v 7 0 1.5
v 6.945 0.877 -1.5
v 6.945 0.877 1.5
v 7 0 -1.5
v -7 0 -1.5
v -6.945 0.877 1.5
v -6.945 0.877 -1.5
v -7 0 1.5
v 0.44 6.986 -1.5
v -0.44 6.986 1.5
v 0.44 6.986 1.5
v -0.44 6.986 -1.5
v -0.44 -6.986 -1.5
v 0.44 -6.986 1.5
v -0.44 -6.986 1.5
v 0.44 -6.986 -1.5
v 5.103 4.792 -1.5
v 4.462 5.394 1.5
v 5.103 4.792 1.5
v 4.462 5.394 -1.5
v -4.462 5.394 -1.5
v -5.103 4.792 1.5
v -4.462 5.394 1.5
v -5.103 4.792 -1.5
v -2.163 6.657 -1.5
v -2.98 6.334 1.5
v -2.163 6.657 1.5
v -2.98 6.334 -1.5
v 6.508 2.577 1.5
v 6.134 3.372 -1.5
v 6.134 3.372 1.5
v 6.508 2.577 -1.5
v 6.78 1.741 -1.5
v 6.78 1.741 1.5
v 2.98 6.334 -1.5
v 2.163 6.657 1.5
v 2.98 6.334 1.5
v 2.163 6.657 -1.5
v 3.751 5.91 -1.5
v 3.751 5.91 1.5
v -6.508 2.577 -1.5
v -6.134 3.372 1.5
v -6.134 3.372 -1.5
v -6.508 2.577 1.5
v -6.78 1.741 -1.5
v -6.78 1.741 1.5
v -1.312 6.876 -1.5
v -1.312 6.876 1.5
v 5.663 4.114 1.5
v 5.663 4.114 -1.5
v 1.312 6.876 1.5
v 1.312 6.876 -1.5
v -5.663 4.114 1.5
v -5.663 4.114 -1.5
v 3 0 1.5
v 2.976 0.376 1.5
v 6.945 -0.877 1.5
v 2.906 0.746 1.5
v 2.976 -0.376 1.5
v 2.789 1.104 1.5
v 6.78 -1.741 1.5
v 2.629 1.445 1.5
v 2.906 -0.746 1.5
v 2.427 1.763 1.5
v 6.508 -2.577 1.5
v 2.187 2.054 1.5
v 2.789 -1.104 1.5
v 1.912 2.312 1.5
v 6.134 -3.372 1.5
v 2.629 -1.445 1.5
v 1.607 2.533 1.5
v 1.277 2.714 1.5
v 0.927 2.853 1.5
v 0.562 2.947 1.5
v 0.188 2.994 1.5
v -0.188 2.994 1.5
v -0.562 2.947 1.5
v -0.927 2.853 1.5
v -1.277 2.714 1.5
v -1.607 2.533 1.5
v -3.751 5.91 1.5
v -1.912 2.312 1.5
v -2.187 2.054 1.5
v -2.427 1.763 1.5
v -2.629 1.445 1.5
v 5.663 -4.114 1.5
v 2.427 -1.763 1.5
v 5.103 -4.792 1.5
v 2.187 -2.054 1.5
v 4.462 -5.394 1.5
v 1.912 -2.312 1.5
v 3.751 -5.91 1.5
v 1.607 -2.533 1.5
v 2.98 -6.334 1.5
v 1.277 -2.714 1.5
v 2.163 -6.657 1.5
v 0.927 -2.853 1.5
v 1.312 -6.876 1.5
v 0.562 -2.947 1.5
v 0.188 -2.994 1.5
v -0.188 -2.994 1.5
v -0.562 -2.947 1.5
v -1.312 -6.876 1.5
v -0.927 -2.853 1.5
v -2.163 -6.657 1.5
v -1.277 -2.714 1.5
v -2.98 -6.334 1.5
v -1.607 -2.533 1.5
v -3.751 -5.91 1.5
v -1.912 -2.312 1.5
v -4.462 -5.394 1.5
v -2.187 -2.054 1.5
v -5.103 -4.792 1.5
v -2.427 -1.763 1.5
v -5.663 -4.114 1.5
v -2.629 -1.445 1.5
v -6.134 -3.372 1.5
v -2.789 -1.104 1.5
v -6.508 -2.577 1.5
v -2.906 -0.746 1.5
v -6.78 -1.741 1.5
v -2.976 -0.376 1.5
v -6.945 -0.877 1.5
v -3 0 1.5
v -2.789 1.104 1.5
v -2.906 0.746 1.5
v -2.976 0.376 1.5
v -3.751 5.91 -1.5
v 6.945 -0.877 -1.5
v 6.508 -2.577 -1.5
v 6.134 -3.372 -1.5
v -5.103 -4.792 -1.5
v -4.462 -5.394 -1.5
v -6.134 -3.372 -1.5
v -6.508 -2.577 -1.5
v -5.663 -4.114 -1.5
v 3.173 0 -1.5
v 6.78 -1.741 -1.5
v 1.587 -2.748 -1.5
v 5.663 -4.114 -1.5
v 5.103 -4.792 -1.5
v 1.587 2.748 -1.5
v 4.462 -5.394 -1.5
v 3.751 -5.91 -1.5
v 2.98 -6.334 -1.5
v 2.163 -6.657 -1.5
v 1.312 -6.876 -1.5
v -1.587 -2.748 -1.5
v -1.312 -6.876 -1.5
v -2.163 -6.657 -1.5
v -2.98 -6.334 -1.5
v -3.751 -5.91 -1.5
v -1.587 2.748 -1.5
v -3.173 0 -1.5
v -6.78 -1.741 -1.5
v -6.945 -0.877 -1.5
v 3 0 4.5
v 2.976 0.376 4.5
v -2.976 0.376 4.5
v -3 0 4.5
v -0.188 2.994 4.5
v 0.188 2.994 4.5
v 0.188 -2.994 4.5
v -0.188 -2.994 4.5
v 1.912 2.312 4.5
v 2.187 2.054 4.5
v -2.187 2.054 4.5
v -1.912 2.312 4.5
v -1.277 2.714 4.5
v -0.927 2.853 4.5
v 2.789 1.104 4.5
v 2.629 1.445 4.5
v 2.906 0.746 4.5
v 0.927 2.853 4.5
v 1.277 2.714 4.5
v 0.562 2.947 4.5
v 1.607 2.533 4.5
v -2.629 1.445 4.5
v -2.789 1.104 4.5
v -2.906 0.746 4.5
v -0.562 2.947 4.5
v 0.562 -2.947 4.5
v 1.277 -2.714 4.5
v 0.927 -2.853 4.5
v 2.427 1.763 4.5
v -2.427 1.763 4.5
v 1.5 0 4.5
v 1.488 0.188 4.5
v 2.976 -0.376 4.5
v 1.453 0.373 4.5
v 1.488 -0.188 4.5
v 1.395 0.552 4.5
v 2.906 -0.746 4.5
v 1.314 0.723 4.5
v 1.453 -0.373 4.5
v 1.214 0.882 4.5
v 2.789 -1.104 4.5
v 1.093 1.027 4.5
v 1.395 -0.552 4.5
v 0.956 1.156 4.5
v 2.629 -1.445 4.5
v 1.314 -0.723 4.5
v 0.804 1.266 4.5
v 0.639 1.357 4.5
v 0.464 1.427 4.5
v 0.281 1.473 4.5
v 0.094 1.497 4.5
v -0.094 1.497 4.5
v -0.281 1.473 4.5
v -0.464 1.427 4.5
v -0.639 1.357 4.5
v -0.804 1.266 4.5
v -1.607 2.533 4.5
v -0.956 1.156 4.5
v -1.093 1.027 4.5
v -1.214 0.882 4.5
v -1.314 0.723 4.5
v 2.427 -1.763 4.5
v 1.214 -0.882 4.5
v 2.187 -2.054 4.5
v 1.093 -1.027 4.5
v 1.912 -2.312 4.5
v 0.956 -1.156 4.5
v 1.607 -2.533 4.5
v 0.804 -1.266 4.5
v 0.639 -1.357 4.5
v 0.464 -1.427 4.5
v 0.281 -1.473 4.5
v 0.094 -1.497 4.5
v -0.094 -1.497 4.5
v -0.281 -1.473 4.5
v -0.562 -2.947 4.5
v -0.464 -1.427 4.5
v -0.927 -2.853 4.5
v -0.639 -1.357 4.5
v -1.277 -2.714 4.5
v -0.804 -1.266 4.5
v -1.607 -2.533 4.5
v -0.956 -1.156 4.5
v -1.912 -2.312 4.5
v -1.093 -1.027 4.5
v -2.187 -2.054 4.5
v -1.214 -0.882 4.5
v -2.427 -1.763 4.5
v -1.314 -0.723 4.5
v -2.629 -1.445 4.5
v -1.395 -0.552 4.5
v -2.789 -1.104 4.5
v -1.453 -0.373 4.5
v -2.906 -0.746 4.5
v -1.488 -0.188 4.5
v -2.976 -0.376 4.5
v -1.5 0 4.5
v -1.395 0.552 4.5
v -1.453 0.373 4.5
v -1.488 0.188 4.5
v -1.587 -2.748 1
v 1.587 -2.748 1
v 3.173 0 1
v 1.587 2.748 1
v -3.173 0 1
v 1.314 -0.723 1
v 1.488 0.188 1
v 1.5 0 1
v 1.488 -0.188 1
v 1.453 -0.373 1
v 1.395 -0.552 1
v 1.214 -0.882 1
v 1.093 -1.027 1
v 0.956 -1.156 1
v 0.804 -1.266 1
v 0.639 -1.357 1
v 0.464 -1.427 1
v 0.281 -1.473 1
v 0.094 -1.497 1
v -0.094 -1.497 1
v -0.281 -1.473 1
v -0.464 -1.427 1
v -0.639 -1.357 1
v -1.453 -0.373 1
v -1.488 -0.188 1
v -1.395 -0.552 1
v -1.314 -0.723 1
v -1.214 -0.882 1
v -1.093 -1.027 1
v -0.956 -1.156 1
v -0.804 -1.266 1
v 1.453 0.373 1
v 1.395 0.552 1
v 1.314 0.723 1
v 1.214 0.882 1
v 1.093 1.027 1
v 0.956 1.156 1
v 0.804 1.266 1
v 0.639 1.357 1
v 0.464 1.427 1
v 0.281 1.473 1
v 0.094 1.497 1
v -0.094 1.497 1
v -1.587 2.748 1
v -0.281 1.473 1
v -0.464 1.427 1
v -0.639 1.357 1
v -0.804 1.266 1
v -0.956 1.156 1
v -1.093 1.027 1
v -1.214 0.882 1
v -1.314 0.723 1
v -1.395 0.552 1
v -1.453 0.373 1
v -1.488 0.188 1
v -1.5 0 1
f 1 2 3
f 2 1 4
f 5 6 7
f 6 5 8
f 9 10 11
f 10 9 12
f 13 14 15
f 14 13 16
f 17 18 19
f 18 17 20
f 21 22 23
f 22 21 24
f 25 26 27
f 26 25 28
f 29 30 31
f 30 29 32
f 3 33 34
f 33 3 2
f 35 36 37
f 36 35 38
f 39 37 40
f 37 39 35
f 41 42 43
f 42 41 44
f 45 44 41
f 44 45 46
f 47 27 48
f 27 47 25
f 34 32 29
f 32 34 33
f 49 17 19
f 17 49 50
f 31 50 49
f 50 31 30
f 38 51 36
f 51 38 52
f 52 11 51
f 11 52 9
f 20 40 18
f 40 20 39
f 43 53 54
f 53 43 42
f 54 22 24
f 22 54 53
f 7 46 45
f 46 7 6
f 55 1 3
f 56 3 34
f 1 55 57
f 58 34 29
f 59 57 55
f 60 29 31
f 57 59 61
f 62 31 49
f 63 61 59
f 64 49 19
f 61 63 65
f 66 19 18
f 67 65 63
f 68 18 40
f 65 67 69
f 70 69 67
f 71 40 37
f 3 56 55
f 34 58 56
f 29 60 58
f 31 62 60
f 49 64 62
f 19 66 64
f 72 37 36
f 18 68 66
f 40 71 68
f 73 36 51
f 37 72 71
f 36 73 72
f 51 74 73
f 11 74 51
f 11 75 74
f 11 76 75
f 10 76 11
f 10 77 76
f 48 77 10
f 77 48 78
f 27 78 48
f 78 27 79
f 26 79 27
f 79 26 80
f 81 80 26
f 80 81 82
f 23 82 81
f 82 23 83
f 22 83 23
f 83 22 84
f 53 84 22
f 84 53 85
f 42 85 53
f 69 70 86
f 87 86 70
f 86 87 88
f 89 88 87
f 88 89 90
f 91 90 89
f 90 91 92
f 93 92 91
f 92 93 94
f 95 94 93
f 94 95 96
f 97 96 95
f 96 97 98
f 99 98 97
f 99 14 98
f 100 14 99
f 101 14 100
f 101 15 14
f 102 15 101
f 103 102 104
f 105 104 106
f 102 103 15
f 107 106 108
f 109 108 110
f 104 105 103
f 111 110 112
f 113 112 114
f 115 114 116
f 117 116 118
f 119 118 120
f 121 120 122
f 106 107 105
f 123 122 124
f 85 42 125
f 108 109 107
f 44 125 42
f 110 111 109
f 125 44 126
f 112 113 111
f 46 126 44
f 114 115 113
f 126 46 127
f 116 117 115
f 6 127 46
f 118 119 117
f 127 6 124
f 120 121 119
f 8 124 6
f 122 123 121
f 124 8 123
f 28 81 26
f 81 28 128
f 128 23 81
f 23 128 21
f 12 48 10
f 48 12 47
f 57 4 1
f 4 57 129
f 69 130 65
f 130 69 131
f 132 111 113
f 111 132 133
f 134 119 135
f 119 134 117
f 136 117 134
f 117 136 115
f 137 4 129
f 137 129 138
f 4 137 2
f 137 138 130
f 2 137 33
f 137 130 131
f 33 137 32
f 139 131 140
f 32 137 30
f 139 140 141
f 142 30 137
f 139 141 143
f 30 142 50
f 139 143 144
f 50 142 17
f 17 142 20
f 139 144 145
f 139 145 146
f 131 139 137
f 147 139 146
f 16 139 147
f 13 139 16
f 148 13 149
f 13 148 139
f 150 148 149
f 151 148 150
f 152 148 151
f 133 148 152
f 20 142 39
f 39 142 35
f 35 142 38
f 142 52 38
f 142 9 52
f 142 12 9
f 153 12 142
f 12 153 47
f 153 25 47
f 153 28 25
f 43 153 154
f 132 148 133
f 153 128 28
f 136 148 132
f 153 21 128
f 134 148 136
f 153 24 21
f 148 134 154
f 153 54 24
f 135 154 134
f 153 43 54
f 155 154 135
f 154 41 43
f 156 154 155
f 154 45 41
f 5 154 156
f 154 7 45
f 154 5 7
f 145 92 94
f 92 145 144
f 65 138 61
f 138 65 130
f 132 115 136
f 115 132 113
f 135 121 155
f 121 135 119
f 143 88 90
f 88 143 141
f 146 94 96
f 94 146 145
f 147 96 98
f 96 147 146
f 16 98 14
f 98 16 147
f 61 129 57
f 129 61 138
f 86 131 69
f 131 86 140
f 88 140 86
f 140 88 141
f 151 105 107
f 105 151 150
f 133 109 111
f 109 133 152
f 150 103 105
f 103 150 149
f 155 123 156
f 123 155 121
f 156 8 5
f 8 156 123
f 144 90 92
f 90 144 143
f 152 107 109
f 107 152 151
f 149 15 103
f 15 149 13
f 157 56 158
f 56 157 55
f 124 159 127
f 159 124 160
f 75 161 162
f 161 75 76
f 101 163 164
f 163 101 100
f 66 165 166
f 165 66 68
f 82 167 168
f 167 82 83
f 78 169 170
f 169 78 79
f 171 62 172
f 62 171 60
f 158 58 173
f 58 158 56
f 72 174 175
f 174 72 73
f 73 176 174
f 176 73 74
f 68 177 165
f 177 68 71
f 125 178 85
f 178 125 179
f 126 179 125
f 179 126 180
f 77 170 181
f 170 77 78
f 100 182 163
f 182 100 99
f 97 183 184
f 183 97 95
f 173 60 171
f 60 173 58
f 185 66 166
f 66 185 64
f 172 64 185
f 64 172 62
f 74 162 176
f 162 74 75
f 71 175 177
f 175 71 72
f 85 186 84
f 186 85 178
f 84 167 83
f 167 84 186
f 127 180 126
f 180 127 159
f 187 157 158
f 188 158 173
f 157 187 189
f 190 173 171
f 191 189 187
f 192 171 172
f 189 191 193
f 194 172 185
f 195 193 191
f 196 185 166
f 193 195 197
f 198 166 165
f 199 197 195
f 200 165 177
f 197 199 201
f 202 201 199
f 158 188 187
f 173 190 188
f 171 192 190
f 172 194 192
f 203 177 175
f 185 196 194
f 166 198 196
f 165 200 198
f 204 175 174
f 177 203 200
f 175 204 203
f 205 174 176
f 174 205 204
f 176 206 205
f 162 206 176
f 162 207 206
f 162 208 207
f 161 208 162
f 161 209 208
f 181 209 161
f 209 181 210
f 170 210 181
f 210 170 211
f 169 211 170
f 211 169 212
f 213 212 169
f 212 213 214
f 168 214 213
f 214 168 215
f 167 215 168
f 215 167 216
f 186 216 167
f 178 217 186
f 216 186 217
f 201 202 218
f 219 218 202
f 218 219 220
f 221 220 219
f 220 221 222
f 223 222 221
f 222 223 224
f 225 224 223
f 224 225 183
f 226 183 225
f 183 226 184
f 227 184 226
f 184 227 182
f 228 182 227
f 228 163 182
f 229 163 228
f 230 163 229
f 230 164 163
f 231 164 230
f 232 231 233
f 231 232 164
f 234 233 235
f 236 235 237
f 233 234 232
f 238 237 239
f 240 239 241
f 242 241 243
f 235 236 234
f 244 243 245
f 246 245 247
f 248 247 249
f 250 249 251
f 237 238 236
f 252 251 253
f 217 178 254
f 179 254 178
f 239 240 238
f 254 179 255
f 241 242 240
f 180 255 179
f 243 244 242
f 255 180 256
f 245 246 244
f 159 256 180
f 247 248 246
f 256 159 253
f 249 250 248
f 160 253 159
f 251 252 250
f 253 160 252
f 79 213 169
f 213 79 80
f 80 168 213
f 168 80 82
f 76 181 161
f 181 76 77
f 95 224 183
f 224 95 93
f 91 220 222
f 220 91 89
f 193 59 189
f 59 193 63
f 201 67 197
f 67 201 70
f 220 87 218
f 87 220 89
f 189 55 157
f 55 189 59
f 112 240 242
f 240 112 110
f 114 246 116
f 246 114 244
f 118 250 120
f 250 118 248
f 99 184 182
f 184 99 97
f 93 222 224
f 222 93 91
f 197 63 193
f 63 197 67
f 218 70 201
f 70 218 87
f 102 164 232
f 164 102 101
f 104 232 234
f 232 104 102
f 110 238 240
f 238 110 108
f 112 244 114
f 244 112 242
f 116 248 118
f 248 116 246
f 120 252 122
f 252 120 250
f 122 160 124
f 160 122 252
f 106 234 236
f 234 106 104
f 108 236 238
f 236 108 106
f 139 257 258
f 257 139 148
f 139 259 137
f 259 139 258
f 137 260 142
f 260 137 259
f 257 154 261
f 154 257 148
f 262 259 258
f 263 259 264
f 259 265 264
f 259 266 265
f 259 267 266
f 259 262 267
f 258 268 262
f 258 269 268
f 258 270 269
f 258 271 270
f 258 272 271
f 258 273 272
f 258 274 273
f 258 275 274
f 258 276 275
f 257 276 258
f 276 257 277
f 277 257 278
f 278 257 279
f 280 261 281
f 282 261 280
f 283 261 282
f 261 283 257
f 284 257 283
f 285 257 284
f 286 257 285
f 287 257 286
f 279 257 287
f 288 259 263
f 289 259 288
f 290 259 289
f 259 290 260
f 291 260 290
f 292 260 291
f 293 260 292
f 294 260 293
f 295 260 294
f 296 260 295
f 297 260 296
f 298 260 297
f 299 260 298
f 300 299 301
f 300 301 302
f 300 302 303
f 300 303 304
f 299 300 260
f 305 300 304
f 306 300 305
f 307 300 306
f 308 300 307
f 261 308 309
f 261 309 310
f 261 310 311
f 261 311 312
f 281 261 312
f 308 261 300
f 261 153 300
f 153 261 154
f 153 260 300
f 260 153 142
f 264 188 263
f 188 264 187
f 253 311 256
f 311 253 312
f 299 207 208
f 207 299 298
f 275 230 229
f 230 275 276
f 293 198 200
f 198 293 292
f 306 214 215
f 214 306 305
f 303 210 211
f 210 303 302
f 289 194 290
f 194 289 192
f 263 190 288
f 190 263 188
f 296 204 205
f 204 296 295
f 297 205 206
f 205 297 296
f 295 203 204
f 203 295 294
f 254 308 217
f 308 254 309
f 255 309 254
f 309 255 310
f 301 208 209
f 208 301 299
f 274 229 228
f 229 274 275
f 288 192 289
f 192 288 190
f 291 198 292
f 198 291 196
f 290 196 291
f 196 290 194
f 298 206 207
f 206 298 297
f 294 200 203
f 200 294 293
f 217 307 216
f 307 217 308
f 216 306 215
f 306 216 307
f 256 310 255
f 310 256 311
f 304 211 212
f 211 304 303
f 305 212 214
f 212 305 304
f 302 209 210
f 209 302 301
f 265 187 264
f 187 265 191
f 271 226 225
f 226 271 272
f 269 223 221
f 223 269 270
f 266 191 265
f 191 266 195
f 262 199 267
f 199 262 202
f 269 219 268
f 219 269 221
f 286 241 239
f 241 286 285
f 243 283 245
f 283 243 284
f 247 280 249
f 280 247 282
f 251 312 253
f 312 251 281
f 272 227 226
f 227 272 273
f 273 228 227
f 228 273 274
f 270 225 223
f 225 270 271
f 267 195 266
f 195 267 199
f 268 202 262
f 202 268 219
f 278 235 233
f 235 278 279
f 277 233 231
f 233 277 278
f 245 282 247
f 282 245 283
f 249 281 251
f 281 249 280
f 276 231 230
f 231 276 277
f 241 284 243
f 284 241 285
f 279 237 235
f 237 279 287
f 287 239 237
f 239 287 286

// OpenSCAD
$fn = 50;


difference() {
	union() {
		translate(v = [0, 0, -1.5000000000]) {
			cylinder(h = 3, r = 7.0000000000);
		}
		translate(v = [0, 0, -1.5000000000]) {
			cylinder(h = 6, r = 3.0000000000);
		}
	}
	union() {
		translate(v = [0, 0, -1.5000000000]) {
			rotate(a = [0, 0, 0]) {
				difference() {
					union() {
						linear_extrude(height = 2.5000000000) {
							polygon(points = [[3.1735000000, 0.0000000000], [1.5867500000, 2.7483316189], [-1.5867500000, 2.7483316189], [-3.1735000000, 0.0000000000], [-1.5867500000, -2.7483316189], [1.5867500000, -2.7483316189]]);
						}
					}
					union();
				}
			}
		}
		translate(v = [0, 0, -50.0000000000]) {
			cylinder(h = 100, r = 1.5000000000);
		}
	}
}
